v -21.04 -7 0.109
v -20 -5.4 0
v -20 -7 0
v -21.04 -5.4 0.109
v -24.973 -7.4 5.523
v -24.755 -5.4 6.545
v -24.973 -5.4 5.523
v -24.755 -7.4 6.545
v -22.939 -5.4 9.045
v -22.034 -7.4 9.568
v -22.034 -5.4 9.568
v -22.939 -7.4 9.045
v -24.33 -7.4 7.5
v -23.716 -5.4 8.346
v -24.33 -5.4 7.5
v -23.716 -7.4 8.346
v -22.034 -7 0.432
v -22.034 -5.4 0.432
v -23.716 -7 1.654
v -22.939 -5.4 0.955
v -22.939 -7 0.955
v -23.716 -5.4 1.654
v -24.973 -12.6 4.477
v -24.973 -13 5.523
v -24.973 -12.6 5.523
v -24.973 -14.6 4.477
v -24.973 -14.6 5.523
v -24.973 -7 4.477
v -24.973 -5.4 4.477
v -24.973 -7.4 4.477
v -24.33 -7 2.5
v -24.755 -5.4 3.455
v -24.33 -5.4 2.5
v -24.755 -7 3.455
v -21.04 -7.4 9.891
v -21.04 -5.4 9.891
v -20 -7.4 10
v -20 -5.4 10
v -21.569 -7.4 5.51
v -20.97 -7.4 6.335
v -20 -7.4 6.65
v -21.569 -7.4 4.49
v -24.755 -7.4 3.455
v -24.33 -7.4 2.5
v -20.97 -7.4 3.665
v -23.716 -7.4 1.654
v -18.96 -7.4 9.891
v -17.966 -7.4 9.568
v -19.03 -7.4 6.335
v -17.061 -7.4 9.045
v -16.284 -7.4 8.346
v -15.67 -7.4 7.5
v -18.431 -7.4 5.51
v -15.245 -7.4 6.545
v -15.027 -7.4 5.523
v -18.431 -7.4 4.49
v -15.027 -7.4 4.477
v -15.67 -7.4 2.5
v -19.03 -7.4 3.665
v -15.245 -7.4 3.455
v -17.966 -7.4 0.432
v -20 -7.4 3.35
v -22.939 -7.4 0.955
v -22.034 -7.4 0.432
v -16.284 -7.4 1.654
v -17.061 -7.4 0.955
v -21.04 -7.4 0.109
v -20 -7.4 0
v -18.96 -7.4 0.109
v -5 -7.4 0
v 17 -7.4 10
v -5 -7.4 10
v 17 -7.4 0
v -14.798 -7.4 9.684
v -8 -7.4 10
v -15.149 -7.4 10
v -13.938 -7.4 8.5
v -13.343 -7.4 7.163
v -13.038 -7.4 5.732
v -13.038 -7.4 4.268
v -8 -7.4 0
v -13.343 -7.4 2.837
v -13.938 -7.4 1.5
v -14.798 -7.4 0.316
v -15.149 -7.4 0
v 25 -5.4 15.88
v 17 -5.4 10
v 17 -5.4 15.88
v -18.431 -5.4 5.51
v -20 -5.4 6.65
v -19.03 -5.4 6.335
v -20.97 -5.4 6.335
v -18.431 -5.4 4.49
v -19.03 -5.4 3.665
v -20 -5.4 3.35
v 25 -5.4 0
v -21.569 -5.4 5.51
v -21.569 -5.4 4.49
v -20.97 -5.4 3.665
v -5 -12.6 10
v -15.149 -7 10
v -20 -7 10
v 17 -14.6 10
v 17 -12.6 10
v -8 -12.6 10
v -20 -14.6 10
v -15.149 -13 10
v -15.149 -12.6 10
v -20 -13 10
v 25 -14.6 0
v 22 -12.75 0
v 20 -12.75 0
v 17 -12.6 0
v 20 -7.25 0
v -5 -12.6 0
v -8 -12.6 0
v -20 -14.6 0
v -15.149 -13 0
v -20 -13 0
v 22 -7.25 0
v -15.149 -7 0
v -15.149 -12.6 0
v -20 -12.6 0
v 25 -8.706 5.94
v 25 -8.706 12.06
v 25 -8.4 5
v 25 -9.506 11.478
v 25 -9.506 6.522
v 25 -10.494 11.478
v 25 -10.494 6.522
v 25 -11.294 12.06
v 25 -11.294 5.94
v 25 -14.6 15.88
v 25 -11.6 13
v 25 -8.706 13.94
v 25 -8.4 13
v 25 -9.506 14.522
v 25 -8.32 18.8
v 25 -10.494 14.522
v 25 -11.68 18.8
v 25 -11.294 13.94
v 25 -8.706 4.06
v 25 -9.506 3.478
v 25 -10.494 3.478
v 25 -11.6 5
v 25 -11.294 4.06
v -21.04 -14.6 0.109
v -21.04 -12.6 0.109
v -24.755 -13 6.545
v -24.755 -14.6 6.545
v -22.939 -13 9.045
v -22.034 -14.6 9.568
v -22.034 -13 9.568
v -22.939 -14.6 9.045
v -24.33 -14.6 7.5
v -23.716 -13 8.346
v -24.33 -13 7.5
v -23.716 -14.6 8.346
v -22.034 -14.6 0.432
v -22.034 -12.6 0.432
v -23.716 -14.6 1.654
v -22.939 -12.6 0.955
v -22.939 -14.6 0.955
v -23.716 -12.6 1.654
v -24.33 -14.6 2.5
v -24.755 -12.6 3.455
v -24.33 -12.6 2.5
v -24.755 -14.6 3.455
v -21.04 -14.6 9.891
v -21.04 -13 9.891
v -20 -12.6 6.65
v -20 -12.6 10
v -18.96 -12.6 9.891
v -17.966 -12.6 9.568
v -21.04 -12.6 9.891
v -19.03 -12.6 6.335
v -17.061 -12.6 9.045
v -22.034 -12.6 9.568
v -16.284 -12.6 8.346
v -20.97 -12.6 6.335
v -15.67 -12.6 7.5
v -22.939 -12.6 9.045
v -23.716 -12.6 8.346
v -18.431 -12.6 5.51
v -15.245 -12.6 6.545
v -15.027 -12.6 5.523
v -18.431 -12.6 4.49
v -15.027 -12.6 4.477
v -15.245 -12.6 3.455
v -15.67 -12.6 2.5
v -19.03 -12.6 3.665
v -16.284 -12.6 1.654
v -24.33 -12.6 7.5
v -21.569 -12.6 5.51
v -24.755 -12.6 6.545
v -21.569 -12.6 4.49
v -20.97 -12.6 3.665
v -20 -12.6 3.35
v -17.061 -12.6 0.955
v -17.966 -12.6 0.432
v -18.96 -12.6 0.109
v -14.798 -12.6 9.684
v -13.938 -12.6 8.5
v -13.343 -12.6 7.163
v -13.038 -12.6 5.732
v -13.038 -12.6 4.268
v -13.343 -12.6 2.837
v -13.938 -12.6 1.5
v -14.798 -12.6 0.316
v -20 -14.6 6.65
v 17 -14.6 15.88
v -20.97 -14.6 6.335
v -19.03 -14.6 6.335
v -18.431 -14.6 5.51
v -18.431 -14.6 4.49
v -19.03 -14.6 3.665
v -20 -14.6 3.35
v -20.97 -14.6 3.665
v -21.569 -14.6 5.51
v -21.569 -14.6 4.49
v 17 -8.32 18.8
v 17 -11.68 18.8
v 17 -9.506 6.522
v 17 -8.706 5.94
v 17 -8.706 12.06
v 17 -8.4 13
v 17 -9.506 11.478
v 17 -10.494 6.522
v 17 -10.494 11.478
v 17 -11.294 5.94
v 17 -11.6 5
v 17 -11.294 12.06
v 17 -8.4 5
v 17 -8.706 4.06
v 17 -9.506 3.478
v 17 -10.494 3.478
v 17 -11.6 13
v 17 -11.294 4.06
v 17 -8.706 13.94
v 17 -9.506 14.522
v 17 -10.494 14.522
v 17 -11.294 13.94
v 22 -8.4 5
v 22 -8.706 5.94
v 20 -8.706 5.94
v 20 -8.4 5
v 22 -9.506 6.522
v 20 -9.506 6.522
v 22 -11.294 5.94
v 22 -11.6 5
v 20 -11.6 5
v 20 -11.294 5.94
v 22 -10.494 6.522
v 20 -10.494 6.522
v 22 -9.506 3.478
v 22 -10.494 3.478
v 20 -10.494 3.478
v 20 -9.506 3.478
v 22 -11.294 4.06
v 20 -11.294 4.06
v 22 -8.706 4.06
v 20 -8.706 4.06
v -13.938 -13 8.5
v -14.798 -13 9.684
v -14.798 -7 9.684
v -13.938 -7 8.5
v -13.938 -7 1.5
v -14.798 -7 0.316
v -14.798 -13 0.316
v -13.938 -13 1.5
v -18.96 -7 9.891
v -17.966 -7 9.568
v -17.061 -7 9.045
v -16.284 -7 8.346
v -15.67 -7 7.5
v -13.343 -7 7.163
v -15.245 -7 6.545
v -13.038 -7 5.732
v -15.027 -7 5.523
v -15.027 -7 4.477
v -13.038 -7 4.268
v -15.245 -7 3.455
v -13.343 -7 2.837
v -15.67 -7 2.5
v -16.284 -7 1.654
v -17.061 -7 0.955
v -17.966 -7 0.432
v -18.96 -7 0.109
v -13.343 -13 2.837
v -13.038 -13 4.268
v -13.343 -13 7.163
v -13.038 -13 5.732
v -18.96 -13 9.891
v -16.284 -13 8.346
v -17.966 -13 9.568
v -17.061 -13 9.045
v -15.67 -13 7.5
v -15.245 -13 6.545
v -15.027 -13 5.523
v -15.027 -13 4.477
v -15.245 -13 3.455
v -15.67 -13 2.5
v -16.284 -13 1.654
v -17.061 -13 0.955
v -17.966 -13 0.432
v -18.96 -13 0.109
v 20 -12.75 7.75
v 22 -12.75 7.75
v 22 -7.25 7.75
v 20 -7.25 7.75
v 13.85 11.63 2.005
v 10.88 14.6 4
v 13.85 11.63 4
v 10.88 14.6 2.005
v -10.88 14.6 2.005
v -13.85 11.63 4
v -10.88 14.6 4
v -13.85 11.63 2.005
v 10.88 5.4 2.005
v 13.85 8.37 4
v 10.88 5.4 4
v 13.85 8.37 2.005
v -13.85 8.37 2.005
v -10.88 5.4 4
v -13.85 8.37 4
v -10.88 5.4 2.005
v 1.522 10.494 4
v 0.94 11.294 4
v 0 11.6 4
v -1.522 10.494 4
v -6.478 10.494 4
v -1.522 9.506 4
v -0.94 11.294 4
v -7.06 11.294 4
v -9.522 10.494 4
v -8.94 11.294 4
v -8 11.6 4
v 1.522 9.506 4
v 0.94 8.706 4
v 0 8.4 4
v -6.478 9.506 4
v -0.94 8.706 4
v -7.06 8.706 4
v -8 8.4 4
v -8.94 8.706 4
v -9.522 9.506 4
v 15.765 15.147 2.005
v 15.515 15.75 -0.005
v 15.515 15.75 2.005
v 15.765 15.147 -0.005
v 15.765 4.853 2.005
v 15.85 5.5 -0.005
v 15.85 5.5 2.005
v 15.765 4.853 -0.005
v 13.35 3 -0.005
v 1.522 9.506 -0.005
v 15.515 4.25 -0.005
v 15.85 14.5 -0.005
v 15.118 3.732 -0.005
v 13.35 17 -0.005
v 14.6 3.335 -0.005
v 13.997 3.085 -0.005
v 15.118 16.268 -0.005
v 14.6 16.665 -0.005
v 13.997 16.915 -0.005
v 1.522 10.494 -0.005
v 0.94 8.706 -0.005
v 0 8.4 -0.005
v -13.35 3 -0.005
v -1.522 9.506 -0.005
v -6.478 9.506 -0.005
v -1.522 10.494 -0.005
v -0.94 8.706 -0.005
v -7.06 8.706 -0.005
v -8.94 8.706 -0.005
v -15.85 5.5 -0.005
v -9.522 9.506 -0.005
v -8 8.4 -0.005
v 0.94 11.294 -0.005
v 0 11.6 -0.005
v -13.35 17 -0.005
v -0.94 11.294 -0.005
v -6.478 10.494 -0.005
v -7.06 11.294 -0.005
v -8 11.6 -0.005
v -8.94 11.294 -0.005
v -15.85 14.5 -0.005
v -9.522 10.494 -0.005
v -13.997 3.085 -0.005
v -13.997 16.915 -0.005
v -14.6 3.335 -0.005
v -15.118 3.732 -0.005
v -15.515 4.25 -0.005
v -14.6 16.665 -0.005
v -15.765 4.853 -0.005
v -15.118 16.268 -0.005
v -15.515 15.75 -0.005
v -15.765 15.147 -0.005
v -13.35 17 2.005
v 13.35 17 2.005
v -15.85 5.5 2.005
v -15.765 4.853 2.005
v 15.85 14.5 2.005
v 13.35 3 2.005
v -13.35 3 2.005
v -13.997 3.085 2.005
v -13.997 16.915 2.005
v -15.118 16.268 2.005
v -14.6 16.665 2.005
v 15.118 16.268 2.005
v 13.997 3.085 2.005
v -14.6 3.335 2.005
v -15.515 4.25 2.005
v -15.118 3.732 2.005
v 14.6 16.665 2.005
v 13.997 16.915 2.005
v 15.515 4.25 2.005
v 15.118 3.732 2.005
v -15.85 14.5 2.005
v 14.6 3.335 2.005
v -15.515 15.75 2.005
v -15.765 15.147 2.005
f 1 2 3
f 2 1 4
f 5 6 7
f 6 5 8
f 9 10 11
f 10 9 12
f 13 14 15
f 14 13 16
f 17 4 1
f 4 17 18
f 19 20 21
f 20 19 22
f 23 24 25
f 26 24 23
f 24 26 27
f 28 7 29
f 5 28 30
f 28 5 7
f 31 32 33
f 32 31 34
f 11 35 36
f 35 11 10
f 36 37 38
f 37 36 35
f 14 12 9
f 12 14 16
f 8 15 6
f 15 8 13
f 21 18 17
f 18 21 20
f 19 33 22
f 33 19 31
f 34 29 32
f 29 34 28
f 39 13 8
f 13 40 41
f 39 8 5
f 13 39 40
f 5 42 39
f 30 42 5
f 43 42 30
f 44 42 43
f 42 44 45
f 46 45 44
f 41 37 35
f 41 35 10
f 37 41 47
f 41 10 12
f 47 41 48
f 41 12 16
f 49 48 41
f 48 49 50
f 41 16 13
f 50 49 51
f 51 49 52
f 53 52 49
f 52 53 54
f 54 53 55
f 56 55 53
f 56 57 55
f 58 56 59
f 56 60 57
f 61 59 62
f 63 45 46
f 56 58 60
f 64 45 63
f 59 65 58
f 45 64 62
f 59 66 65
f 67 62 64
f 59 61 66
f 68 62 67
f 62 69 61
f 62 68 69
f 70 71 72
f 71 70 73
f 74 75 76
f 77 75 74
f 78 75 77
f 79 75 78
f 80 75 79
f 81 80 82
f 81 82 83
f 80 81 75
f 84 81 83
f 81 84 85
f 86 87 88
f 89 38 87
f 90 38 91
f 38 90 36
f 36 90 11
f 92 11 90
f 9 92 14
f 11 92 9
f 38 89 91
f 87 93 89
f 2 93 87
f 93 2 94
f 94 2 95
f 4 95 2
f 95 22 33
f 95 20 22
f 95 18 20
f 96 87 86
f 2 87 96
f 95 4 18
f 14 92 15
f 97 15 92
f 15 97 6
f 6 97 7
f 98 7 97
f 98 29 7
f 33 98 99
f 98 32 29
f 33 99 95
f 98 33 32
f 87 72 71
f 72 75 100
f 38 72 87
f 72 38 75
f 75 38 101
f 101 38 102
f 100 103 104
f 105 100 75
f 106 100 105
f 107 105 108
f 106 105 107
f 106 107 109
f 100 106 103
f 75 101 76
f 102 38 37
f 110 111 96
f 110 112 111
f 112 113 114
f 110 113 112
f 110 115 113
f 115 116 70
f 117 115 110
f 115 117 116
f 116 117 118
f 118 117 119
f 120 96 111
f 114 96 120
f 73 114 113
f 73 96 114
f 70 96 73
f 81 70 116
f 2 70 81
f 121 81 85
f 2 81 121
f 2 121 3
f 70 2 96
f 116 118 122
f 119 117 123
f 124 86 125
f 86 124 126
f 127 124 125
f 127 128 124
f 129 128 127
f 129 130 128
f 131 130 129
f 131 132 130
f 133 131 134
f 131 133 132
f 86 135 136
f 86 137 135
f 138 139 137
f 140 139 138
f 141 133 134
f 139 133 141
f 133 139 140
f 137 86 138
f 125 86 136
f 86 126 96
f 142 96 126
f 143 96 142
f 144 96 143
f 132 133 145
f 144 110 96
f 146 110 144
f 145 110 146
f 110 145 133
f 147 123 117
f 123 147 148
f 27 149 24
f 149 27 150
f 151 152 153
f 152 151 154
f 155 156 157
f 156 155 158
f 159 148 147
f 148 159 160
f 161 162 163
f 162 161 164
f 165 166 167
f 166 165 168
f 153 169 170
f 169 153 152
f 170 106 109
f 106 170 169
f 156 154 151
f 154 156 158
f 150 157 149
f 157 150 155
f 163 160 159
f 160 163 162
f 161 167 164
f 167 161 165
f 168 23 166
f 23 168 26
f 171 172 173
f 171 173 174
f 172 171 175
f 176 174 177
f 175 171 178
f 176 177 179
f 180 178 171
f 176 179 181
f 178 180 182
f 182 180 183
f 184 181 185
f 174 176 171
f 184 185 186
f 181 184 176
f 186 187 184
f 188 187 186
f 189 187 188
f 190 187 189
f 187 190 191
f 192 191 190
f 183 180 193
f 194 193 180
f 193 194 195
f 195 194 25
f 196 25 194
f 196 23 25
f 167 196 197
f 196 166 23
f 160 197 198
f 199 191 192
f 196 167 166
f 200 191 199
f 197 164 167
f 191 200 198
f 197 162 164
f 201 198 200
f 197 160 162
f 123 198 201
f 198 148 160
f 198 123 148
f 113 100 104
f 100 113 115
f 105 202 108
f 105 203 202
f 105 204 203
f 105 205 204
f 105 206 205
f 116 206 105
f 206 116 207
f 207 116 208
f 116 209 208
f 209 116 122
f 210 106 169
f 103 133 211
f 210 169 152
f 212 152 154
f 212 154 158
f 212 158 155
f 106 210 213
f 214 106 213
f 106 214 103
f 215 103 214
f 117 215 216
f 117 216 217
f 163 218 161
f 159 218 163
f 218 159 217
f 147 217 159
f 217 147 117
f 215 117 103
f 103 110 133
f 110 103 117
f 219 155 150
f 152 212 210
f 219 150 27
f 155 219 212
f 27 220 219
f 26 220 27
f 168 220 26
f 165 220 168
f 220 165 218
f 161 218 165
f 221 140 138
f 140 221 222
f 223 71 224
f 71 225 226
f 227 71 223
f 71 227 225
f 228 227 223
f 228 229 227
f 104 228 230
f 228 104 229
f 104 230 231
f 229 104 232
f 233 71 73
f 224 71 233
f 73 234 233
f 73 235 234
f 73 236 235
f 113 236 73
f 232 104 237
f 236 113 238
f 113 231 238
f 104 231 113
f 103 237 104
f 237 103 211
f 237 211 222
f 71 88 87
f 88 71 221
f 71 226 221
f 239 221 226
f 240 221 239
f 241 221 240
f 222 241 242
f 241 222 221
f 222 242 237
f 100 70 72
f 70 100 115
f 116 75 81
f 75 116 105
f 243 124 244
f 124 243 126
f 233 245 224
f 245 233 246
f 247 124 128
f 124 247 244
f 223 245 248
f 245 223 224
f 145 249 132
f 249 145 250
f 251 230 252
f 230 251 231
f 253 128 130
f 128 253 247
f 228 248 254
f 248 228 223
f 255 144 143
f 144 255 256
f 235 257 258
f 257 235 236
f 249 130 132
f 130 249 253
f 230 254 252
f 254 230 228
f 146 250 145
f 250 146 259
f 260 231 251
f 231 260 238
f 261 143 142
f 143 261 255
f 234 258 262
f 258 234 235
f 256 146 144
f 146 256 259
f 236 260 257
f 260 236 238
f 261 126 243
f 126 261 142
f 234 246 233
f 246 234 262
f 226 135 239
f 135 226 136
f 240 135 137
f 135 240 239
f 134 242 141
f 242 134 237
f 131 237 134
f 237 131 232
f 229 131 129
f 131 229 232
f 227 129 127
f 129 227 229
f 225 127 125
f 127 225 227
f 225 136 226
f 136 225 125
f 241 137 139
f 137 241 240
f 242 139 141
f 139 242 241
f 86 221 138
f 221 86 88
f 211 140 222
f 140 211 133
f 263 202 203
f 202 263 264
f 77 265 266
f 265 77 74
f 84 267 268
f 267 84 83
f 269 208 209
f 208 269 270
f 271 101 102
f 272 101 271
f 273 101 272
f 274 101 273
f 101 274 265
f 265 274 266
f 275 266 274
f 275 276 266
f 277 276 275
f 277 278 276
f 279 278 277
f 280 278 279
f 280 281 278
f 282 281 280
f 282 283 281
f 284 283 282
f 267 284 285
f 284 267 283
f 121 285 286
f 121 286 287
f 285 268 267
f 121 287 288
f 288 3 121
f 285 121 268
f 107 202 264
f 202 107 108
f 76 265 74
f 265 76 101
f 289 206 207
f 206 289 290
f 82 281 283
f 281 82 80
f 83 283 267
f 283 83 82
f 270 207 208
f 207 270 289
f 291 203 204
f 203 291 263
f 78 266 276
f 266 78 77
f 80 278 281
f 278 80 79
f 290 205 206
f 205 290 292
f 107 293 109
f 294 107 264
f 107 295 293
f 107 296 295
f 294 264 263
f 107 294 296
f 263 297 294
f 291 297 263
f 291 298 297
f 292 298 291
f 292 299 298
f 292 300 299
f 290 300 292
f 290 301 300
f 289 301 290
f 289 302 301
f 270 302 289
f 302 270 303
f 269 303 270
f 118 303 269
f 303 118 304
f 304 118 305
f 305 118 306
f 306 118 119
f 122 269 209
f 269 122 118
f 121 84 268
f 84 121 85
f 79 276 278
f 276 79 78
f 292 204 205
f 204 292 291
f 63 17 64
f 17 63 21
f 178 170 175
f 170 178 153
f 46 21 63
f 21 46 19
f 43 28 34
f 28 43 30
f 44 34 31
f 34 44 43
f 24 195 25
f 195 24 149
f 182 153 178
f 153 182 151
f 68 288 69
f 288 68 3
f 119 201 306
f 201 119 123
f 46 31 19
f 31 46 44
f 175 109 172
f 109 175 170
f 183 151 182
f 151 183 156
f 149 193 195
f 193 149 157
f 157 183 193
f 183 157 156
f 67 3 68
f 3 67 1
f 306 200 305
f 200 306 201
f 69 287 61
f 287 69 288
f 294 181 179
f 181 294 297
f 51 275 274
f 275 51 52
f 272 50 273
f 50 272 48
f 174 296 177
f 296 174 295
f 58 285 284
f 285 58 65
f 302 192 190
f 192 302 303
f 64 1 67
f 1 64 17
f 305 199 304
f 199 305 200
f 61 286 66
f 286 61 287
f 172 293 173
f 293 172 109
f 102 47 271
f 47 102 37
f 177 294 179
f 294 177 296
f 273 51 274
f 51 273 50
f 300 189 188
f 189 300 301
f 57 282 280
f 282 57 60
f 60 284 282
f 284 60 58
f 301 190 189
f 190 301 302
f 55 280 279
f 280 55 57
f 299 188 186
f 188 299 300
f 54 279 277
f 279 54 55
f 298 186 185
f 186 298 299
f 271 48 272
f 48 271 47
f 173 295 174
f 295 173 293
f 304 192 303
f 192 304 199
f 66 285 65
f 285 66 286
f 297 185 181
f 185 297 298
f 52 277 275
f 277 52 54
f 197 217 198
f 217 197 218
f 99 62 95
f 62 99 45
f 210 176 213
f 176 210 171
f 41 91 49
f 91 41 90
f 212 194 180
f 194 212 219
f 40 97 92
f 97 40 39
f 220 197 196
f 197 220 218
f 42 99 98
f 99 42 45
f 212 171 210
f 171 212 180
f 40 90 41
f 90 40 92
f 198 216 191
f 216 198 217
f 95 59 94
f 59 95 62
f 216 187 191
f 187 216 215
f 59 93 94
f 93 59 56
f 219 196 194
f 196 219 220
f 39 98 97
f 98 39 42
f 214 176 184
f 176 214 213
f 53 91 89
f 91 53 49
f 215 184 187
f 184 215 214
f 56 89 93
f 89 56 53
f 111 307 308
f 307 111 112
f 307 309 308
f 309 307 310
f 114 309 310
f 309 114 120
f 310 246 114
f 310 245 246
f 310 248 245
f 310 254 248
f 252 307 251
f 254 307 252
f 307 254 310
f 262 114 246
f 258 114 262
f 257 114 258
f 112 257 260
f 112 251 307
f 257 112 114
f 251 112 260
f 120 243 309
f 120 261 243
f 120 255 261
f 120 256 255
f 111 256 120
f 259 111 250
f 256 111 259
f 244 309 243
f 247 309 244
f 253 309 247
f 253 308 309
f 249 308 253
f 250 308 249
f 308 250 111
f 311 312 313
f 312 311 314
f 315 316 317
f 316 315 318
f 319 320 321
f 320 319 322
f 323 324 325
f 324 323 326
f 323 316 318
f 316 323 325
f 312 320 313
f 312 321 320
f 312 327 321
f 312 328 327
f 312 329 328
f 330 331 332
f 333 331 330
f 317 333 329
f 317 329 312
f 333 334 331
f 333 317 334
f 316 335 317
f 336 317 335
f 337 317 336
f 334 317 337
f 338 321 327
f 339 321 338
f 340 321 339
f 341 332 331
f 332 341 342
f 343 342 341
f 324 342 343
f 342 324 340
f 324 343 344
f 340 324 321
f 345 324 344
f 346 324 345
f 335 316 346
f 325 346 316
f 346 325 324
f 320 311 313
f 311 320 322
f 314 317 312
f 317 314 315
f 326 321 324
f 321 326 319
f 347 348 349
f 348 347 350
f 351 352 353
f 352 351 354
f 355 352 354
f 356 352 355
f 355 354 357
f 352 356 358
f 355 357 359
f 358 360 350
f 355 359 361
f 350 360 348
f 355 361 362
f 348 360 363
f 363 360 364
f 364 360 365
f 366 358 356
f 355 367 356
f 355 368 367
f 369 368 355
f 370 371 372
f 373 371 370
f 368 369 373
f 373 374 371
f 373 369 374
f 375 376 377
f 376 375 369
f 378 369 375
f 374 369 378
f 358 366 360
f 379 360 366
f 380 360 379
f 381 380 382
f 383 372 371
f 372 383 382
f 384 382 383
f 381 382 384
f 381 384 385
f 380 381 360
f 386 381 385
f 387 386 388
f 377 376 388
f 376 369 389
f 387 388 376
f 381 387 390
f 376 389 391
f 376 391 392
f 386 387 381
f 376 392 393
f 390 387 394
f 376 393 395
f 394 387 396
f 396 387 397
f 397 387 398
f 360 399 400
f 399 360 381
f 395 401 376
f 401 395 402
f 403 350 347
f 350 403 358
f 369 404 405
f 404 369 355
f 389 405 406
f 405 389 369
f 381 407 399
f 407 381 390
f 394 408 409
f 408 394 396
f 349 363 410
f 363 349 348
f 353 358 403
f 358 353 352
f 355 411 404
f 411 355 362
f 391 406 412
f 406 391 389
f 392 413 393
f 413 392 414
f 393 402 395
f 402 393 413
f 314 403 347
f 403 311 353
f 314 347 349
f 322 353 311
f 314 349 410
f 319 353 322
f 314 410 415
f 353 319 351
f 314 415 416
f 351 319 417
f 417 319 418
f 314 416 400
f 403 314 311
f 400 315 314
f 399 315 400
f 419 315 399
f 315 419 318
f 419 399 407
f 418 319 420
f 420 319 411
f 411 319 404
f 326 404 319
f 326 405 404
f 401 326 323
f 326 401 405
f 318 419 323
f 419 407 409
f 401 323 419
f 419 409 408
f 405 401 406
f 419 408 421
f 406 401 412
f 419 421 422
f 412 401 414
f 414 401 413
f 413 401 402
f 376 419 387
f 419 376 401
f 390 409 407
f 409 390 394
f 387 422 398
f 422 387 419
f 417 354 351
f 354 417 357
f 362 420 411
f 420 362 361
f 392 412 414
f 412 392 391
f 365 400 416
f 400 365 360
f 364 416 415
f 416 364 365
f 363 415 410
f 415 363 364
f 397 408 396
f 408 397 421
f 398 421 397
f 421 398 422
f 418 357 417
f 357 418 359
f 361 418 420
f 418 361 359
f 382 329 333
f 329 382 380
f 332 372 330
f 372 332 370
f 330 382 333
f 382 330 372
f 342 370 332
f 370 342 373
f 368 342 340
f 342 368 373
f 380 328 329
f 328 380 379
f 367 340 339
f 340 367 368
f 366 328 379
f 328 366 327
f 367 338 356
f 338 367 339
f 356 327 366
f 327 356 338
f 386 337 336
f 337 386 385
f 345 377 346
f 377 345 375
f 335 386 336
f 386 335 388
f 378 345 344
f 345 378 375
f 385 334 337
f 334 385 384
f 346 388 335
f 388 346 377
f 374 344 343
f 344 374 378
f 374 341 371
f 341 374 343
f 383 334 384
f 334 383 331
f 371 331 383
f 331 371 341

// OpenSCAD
// Camera: 2,-4,8,38,0,238,170

module round_box(size=[1,1,1], d=0.1, center=false)
{
  minkowski() {
    cube(size-[d,d,0], center=center);
    cylinder(d=d, h=0.01, center=center, $fn=24);
  }
}

module bearing_624()
{
  difference() {
    cylinder(d=13, h=5, center=true, $fn=48);
    cylinder(d=4, h=5.1, center=true, $fn=24);
  }
}

module tensioner_arm(length)
{
  translate([length/2,0,10/2]) rotate([0,0,90]) {
    difference() {
      union() {
        for (i=[0,1]) mirror([i,0,0]) {
          translate([3.6,length-5,0]) rotate([0,90,0]) cylinder(d=10, h=2, center=true, $fn=30);
          // translate([3.6-0.8,length-5,0]) rotate([0,90,0]) cylinder(d1=5, d2=10, h=1, center=true);
          translate([3.6,(length-5)/2,0]) cube([2,length-5,10], center=true);
        }

        translate([0,8/2,8.8/2]) cube([9.2,8,10+8.8], center=true);
        translate([0,length-20+(3/2),0]) cube([8,3,10], center=true);
      }

      #for (i=[0,1]) translate([0,10,i*8]) rotate([90,0,0]) cylinder(d=3.2, h=20, $fn=10);
      translate([0,length-5,0]) rotate([0,90,0]) cylinder(d=3.3, h=15, center=true, $fn=10);
      translate([0,4,-5/2]) cube([5.5, 2, 5+5.5], center=true);
      for (i=[0,1]) mirror([i,0,0]) translate([9.2/2,4,27.7/2]) rotate([0,45,0]) cube([6,10,4.2], center=true);
      translate([0,length-5,0]) rotate([0,90,0]) {
        difference() {
          cylinder(d=10+4, h=6, center=true, $fn=30);
          cylinder(d=10, h=6, center=true, $fn=30);
        }
      }
    }

    // Show where the 624 bearing goes
    translate([0,length-5,0]) rotate([0,90,0]) {
      % bearing_624();
    }
  }
}

module tensioner_plate()
{
  difference() {
    union() {
      translate([0,0,2/2]) round_box([27.7, 5+3, 2]+[4,6,0], d=5, center=true);
      translate([0,0,(3/2)+1]) difference() {
        cube([27.7, 9.2, 3], center=true);
        for (i=[0,1]) mirror([0,i,0]) for (j=[0,1]) mirror([j,0,0]) translate([27.7/2,9.2/2,0]) rotate([0,0,45]) cube([4.2,10,5], center=true);
      }
    }
    # for(i=[0,-1]) translate([i*8,0,-3]) rotate([0,0,90]) cylinder(d=3.2, h=10, $fn=10);
  }
}

translate([0,-10,0]) tensioner_arm(length=50);
translate([0,10,0]) tensioner_plate();
